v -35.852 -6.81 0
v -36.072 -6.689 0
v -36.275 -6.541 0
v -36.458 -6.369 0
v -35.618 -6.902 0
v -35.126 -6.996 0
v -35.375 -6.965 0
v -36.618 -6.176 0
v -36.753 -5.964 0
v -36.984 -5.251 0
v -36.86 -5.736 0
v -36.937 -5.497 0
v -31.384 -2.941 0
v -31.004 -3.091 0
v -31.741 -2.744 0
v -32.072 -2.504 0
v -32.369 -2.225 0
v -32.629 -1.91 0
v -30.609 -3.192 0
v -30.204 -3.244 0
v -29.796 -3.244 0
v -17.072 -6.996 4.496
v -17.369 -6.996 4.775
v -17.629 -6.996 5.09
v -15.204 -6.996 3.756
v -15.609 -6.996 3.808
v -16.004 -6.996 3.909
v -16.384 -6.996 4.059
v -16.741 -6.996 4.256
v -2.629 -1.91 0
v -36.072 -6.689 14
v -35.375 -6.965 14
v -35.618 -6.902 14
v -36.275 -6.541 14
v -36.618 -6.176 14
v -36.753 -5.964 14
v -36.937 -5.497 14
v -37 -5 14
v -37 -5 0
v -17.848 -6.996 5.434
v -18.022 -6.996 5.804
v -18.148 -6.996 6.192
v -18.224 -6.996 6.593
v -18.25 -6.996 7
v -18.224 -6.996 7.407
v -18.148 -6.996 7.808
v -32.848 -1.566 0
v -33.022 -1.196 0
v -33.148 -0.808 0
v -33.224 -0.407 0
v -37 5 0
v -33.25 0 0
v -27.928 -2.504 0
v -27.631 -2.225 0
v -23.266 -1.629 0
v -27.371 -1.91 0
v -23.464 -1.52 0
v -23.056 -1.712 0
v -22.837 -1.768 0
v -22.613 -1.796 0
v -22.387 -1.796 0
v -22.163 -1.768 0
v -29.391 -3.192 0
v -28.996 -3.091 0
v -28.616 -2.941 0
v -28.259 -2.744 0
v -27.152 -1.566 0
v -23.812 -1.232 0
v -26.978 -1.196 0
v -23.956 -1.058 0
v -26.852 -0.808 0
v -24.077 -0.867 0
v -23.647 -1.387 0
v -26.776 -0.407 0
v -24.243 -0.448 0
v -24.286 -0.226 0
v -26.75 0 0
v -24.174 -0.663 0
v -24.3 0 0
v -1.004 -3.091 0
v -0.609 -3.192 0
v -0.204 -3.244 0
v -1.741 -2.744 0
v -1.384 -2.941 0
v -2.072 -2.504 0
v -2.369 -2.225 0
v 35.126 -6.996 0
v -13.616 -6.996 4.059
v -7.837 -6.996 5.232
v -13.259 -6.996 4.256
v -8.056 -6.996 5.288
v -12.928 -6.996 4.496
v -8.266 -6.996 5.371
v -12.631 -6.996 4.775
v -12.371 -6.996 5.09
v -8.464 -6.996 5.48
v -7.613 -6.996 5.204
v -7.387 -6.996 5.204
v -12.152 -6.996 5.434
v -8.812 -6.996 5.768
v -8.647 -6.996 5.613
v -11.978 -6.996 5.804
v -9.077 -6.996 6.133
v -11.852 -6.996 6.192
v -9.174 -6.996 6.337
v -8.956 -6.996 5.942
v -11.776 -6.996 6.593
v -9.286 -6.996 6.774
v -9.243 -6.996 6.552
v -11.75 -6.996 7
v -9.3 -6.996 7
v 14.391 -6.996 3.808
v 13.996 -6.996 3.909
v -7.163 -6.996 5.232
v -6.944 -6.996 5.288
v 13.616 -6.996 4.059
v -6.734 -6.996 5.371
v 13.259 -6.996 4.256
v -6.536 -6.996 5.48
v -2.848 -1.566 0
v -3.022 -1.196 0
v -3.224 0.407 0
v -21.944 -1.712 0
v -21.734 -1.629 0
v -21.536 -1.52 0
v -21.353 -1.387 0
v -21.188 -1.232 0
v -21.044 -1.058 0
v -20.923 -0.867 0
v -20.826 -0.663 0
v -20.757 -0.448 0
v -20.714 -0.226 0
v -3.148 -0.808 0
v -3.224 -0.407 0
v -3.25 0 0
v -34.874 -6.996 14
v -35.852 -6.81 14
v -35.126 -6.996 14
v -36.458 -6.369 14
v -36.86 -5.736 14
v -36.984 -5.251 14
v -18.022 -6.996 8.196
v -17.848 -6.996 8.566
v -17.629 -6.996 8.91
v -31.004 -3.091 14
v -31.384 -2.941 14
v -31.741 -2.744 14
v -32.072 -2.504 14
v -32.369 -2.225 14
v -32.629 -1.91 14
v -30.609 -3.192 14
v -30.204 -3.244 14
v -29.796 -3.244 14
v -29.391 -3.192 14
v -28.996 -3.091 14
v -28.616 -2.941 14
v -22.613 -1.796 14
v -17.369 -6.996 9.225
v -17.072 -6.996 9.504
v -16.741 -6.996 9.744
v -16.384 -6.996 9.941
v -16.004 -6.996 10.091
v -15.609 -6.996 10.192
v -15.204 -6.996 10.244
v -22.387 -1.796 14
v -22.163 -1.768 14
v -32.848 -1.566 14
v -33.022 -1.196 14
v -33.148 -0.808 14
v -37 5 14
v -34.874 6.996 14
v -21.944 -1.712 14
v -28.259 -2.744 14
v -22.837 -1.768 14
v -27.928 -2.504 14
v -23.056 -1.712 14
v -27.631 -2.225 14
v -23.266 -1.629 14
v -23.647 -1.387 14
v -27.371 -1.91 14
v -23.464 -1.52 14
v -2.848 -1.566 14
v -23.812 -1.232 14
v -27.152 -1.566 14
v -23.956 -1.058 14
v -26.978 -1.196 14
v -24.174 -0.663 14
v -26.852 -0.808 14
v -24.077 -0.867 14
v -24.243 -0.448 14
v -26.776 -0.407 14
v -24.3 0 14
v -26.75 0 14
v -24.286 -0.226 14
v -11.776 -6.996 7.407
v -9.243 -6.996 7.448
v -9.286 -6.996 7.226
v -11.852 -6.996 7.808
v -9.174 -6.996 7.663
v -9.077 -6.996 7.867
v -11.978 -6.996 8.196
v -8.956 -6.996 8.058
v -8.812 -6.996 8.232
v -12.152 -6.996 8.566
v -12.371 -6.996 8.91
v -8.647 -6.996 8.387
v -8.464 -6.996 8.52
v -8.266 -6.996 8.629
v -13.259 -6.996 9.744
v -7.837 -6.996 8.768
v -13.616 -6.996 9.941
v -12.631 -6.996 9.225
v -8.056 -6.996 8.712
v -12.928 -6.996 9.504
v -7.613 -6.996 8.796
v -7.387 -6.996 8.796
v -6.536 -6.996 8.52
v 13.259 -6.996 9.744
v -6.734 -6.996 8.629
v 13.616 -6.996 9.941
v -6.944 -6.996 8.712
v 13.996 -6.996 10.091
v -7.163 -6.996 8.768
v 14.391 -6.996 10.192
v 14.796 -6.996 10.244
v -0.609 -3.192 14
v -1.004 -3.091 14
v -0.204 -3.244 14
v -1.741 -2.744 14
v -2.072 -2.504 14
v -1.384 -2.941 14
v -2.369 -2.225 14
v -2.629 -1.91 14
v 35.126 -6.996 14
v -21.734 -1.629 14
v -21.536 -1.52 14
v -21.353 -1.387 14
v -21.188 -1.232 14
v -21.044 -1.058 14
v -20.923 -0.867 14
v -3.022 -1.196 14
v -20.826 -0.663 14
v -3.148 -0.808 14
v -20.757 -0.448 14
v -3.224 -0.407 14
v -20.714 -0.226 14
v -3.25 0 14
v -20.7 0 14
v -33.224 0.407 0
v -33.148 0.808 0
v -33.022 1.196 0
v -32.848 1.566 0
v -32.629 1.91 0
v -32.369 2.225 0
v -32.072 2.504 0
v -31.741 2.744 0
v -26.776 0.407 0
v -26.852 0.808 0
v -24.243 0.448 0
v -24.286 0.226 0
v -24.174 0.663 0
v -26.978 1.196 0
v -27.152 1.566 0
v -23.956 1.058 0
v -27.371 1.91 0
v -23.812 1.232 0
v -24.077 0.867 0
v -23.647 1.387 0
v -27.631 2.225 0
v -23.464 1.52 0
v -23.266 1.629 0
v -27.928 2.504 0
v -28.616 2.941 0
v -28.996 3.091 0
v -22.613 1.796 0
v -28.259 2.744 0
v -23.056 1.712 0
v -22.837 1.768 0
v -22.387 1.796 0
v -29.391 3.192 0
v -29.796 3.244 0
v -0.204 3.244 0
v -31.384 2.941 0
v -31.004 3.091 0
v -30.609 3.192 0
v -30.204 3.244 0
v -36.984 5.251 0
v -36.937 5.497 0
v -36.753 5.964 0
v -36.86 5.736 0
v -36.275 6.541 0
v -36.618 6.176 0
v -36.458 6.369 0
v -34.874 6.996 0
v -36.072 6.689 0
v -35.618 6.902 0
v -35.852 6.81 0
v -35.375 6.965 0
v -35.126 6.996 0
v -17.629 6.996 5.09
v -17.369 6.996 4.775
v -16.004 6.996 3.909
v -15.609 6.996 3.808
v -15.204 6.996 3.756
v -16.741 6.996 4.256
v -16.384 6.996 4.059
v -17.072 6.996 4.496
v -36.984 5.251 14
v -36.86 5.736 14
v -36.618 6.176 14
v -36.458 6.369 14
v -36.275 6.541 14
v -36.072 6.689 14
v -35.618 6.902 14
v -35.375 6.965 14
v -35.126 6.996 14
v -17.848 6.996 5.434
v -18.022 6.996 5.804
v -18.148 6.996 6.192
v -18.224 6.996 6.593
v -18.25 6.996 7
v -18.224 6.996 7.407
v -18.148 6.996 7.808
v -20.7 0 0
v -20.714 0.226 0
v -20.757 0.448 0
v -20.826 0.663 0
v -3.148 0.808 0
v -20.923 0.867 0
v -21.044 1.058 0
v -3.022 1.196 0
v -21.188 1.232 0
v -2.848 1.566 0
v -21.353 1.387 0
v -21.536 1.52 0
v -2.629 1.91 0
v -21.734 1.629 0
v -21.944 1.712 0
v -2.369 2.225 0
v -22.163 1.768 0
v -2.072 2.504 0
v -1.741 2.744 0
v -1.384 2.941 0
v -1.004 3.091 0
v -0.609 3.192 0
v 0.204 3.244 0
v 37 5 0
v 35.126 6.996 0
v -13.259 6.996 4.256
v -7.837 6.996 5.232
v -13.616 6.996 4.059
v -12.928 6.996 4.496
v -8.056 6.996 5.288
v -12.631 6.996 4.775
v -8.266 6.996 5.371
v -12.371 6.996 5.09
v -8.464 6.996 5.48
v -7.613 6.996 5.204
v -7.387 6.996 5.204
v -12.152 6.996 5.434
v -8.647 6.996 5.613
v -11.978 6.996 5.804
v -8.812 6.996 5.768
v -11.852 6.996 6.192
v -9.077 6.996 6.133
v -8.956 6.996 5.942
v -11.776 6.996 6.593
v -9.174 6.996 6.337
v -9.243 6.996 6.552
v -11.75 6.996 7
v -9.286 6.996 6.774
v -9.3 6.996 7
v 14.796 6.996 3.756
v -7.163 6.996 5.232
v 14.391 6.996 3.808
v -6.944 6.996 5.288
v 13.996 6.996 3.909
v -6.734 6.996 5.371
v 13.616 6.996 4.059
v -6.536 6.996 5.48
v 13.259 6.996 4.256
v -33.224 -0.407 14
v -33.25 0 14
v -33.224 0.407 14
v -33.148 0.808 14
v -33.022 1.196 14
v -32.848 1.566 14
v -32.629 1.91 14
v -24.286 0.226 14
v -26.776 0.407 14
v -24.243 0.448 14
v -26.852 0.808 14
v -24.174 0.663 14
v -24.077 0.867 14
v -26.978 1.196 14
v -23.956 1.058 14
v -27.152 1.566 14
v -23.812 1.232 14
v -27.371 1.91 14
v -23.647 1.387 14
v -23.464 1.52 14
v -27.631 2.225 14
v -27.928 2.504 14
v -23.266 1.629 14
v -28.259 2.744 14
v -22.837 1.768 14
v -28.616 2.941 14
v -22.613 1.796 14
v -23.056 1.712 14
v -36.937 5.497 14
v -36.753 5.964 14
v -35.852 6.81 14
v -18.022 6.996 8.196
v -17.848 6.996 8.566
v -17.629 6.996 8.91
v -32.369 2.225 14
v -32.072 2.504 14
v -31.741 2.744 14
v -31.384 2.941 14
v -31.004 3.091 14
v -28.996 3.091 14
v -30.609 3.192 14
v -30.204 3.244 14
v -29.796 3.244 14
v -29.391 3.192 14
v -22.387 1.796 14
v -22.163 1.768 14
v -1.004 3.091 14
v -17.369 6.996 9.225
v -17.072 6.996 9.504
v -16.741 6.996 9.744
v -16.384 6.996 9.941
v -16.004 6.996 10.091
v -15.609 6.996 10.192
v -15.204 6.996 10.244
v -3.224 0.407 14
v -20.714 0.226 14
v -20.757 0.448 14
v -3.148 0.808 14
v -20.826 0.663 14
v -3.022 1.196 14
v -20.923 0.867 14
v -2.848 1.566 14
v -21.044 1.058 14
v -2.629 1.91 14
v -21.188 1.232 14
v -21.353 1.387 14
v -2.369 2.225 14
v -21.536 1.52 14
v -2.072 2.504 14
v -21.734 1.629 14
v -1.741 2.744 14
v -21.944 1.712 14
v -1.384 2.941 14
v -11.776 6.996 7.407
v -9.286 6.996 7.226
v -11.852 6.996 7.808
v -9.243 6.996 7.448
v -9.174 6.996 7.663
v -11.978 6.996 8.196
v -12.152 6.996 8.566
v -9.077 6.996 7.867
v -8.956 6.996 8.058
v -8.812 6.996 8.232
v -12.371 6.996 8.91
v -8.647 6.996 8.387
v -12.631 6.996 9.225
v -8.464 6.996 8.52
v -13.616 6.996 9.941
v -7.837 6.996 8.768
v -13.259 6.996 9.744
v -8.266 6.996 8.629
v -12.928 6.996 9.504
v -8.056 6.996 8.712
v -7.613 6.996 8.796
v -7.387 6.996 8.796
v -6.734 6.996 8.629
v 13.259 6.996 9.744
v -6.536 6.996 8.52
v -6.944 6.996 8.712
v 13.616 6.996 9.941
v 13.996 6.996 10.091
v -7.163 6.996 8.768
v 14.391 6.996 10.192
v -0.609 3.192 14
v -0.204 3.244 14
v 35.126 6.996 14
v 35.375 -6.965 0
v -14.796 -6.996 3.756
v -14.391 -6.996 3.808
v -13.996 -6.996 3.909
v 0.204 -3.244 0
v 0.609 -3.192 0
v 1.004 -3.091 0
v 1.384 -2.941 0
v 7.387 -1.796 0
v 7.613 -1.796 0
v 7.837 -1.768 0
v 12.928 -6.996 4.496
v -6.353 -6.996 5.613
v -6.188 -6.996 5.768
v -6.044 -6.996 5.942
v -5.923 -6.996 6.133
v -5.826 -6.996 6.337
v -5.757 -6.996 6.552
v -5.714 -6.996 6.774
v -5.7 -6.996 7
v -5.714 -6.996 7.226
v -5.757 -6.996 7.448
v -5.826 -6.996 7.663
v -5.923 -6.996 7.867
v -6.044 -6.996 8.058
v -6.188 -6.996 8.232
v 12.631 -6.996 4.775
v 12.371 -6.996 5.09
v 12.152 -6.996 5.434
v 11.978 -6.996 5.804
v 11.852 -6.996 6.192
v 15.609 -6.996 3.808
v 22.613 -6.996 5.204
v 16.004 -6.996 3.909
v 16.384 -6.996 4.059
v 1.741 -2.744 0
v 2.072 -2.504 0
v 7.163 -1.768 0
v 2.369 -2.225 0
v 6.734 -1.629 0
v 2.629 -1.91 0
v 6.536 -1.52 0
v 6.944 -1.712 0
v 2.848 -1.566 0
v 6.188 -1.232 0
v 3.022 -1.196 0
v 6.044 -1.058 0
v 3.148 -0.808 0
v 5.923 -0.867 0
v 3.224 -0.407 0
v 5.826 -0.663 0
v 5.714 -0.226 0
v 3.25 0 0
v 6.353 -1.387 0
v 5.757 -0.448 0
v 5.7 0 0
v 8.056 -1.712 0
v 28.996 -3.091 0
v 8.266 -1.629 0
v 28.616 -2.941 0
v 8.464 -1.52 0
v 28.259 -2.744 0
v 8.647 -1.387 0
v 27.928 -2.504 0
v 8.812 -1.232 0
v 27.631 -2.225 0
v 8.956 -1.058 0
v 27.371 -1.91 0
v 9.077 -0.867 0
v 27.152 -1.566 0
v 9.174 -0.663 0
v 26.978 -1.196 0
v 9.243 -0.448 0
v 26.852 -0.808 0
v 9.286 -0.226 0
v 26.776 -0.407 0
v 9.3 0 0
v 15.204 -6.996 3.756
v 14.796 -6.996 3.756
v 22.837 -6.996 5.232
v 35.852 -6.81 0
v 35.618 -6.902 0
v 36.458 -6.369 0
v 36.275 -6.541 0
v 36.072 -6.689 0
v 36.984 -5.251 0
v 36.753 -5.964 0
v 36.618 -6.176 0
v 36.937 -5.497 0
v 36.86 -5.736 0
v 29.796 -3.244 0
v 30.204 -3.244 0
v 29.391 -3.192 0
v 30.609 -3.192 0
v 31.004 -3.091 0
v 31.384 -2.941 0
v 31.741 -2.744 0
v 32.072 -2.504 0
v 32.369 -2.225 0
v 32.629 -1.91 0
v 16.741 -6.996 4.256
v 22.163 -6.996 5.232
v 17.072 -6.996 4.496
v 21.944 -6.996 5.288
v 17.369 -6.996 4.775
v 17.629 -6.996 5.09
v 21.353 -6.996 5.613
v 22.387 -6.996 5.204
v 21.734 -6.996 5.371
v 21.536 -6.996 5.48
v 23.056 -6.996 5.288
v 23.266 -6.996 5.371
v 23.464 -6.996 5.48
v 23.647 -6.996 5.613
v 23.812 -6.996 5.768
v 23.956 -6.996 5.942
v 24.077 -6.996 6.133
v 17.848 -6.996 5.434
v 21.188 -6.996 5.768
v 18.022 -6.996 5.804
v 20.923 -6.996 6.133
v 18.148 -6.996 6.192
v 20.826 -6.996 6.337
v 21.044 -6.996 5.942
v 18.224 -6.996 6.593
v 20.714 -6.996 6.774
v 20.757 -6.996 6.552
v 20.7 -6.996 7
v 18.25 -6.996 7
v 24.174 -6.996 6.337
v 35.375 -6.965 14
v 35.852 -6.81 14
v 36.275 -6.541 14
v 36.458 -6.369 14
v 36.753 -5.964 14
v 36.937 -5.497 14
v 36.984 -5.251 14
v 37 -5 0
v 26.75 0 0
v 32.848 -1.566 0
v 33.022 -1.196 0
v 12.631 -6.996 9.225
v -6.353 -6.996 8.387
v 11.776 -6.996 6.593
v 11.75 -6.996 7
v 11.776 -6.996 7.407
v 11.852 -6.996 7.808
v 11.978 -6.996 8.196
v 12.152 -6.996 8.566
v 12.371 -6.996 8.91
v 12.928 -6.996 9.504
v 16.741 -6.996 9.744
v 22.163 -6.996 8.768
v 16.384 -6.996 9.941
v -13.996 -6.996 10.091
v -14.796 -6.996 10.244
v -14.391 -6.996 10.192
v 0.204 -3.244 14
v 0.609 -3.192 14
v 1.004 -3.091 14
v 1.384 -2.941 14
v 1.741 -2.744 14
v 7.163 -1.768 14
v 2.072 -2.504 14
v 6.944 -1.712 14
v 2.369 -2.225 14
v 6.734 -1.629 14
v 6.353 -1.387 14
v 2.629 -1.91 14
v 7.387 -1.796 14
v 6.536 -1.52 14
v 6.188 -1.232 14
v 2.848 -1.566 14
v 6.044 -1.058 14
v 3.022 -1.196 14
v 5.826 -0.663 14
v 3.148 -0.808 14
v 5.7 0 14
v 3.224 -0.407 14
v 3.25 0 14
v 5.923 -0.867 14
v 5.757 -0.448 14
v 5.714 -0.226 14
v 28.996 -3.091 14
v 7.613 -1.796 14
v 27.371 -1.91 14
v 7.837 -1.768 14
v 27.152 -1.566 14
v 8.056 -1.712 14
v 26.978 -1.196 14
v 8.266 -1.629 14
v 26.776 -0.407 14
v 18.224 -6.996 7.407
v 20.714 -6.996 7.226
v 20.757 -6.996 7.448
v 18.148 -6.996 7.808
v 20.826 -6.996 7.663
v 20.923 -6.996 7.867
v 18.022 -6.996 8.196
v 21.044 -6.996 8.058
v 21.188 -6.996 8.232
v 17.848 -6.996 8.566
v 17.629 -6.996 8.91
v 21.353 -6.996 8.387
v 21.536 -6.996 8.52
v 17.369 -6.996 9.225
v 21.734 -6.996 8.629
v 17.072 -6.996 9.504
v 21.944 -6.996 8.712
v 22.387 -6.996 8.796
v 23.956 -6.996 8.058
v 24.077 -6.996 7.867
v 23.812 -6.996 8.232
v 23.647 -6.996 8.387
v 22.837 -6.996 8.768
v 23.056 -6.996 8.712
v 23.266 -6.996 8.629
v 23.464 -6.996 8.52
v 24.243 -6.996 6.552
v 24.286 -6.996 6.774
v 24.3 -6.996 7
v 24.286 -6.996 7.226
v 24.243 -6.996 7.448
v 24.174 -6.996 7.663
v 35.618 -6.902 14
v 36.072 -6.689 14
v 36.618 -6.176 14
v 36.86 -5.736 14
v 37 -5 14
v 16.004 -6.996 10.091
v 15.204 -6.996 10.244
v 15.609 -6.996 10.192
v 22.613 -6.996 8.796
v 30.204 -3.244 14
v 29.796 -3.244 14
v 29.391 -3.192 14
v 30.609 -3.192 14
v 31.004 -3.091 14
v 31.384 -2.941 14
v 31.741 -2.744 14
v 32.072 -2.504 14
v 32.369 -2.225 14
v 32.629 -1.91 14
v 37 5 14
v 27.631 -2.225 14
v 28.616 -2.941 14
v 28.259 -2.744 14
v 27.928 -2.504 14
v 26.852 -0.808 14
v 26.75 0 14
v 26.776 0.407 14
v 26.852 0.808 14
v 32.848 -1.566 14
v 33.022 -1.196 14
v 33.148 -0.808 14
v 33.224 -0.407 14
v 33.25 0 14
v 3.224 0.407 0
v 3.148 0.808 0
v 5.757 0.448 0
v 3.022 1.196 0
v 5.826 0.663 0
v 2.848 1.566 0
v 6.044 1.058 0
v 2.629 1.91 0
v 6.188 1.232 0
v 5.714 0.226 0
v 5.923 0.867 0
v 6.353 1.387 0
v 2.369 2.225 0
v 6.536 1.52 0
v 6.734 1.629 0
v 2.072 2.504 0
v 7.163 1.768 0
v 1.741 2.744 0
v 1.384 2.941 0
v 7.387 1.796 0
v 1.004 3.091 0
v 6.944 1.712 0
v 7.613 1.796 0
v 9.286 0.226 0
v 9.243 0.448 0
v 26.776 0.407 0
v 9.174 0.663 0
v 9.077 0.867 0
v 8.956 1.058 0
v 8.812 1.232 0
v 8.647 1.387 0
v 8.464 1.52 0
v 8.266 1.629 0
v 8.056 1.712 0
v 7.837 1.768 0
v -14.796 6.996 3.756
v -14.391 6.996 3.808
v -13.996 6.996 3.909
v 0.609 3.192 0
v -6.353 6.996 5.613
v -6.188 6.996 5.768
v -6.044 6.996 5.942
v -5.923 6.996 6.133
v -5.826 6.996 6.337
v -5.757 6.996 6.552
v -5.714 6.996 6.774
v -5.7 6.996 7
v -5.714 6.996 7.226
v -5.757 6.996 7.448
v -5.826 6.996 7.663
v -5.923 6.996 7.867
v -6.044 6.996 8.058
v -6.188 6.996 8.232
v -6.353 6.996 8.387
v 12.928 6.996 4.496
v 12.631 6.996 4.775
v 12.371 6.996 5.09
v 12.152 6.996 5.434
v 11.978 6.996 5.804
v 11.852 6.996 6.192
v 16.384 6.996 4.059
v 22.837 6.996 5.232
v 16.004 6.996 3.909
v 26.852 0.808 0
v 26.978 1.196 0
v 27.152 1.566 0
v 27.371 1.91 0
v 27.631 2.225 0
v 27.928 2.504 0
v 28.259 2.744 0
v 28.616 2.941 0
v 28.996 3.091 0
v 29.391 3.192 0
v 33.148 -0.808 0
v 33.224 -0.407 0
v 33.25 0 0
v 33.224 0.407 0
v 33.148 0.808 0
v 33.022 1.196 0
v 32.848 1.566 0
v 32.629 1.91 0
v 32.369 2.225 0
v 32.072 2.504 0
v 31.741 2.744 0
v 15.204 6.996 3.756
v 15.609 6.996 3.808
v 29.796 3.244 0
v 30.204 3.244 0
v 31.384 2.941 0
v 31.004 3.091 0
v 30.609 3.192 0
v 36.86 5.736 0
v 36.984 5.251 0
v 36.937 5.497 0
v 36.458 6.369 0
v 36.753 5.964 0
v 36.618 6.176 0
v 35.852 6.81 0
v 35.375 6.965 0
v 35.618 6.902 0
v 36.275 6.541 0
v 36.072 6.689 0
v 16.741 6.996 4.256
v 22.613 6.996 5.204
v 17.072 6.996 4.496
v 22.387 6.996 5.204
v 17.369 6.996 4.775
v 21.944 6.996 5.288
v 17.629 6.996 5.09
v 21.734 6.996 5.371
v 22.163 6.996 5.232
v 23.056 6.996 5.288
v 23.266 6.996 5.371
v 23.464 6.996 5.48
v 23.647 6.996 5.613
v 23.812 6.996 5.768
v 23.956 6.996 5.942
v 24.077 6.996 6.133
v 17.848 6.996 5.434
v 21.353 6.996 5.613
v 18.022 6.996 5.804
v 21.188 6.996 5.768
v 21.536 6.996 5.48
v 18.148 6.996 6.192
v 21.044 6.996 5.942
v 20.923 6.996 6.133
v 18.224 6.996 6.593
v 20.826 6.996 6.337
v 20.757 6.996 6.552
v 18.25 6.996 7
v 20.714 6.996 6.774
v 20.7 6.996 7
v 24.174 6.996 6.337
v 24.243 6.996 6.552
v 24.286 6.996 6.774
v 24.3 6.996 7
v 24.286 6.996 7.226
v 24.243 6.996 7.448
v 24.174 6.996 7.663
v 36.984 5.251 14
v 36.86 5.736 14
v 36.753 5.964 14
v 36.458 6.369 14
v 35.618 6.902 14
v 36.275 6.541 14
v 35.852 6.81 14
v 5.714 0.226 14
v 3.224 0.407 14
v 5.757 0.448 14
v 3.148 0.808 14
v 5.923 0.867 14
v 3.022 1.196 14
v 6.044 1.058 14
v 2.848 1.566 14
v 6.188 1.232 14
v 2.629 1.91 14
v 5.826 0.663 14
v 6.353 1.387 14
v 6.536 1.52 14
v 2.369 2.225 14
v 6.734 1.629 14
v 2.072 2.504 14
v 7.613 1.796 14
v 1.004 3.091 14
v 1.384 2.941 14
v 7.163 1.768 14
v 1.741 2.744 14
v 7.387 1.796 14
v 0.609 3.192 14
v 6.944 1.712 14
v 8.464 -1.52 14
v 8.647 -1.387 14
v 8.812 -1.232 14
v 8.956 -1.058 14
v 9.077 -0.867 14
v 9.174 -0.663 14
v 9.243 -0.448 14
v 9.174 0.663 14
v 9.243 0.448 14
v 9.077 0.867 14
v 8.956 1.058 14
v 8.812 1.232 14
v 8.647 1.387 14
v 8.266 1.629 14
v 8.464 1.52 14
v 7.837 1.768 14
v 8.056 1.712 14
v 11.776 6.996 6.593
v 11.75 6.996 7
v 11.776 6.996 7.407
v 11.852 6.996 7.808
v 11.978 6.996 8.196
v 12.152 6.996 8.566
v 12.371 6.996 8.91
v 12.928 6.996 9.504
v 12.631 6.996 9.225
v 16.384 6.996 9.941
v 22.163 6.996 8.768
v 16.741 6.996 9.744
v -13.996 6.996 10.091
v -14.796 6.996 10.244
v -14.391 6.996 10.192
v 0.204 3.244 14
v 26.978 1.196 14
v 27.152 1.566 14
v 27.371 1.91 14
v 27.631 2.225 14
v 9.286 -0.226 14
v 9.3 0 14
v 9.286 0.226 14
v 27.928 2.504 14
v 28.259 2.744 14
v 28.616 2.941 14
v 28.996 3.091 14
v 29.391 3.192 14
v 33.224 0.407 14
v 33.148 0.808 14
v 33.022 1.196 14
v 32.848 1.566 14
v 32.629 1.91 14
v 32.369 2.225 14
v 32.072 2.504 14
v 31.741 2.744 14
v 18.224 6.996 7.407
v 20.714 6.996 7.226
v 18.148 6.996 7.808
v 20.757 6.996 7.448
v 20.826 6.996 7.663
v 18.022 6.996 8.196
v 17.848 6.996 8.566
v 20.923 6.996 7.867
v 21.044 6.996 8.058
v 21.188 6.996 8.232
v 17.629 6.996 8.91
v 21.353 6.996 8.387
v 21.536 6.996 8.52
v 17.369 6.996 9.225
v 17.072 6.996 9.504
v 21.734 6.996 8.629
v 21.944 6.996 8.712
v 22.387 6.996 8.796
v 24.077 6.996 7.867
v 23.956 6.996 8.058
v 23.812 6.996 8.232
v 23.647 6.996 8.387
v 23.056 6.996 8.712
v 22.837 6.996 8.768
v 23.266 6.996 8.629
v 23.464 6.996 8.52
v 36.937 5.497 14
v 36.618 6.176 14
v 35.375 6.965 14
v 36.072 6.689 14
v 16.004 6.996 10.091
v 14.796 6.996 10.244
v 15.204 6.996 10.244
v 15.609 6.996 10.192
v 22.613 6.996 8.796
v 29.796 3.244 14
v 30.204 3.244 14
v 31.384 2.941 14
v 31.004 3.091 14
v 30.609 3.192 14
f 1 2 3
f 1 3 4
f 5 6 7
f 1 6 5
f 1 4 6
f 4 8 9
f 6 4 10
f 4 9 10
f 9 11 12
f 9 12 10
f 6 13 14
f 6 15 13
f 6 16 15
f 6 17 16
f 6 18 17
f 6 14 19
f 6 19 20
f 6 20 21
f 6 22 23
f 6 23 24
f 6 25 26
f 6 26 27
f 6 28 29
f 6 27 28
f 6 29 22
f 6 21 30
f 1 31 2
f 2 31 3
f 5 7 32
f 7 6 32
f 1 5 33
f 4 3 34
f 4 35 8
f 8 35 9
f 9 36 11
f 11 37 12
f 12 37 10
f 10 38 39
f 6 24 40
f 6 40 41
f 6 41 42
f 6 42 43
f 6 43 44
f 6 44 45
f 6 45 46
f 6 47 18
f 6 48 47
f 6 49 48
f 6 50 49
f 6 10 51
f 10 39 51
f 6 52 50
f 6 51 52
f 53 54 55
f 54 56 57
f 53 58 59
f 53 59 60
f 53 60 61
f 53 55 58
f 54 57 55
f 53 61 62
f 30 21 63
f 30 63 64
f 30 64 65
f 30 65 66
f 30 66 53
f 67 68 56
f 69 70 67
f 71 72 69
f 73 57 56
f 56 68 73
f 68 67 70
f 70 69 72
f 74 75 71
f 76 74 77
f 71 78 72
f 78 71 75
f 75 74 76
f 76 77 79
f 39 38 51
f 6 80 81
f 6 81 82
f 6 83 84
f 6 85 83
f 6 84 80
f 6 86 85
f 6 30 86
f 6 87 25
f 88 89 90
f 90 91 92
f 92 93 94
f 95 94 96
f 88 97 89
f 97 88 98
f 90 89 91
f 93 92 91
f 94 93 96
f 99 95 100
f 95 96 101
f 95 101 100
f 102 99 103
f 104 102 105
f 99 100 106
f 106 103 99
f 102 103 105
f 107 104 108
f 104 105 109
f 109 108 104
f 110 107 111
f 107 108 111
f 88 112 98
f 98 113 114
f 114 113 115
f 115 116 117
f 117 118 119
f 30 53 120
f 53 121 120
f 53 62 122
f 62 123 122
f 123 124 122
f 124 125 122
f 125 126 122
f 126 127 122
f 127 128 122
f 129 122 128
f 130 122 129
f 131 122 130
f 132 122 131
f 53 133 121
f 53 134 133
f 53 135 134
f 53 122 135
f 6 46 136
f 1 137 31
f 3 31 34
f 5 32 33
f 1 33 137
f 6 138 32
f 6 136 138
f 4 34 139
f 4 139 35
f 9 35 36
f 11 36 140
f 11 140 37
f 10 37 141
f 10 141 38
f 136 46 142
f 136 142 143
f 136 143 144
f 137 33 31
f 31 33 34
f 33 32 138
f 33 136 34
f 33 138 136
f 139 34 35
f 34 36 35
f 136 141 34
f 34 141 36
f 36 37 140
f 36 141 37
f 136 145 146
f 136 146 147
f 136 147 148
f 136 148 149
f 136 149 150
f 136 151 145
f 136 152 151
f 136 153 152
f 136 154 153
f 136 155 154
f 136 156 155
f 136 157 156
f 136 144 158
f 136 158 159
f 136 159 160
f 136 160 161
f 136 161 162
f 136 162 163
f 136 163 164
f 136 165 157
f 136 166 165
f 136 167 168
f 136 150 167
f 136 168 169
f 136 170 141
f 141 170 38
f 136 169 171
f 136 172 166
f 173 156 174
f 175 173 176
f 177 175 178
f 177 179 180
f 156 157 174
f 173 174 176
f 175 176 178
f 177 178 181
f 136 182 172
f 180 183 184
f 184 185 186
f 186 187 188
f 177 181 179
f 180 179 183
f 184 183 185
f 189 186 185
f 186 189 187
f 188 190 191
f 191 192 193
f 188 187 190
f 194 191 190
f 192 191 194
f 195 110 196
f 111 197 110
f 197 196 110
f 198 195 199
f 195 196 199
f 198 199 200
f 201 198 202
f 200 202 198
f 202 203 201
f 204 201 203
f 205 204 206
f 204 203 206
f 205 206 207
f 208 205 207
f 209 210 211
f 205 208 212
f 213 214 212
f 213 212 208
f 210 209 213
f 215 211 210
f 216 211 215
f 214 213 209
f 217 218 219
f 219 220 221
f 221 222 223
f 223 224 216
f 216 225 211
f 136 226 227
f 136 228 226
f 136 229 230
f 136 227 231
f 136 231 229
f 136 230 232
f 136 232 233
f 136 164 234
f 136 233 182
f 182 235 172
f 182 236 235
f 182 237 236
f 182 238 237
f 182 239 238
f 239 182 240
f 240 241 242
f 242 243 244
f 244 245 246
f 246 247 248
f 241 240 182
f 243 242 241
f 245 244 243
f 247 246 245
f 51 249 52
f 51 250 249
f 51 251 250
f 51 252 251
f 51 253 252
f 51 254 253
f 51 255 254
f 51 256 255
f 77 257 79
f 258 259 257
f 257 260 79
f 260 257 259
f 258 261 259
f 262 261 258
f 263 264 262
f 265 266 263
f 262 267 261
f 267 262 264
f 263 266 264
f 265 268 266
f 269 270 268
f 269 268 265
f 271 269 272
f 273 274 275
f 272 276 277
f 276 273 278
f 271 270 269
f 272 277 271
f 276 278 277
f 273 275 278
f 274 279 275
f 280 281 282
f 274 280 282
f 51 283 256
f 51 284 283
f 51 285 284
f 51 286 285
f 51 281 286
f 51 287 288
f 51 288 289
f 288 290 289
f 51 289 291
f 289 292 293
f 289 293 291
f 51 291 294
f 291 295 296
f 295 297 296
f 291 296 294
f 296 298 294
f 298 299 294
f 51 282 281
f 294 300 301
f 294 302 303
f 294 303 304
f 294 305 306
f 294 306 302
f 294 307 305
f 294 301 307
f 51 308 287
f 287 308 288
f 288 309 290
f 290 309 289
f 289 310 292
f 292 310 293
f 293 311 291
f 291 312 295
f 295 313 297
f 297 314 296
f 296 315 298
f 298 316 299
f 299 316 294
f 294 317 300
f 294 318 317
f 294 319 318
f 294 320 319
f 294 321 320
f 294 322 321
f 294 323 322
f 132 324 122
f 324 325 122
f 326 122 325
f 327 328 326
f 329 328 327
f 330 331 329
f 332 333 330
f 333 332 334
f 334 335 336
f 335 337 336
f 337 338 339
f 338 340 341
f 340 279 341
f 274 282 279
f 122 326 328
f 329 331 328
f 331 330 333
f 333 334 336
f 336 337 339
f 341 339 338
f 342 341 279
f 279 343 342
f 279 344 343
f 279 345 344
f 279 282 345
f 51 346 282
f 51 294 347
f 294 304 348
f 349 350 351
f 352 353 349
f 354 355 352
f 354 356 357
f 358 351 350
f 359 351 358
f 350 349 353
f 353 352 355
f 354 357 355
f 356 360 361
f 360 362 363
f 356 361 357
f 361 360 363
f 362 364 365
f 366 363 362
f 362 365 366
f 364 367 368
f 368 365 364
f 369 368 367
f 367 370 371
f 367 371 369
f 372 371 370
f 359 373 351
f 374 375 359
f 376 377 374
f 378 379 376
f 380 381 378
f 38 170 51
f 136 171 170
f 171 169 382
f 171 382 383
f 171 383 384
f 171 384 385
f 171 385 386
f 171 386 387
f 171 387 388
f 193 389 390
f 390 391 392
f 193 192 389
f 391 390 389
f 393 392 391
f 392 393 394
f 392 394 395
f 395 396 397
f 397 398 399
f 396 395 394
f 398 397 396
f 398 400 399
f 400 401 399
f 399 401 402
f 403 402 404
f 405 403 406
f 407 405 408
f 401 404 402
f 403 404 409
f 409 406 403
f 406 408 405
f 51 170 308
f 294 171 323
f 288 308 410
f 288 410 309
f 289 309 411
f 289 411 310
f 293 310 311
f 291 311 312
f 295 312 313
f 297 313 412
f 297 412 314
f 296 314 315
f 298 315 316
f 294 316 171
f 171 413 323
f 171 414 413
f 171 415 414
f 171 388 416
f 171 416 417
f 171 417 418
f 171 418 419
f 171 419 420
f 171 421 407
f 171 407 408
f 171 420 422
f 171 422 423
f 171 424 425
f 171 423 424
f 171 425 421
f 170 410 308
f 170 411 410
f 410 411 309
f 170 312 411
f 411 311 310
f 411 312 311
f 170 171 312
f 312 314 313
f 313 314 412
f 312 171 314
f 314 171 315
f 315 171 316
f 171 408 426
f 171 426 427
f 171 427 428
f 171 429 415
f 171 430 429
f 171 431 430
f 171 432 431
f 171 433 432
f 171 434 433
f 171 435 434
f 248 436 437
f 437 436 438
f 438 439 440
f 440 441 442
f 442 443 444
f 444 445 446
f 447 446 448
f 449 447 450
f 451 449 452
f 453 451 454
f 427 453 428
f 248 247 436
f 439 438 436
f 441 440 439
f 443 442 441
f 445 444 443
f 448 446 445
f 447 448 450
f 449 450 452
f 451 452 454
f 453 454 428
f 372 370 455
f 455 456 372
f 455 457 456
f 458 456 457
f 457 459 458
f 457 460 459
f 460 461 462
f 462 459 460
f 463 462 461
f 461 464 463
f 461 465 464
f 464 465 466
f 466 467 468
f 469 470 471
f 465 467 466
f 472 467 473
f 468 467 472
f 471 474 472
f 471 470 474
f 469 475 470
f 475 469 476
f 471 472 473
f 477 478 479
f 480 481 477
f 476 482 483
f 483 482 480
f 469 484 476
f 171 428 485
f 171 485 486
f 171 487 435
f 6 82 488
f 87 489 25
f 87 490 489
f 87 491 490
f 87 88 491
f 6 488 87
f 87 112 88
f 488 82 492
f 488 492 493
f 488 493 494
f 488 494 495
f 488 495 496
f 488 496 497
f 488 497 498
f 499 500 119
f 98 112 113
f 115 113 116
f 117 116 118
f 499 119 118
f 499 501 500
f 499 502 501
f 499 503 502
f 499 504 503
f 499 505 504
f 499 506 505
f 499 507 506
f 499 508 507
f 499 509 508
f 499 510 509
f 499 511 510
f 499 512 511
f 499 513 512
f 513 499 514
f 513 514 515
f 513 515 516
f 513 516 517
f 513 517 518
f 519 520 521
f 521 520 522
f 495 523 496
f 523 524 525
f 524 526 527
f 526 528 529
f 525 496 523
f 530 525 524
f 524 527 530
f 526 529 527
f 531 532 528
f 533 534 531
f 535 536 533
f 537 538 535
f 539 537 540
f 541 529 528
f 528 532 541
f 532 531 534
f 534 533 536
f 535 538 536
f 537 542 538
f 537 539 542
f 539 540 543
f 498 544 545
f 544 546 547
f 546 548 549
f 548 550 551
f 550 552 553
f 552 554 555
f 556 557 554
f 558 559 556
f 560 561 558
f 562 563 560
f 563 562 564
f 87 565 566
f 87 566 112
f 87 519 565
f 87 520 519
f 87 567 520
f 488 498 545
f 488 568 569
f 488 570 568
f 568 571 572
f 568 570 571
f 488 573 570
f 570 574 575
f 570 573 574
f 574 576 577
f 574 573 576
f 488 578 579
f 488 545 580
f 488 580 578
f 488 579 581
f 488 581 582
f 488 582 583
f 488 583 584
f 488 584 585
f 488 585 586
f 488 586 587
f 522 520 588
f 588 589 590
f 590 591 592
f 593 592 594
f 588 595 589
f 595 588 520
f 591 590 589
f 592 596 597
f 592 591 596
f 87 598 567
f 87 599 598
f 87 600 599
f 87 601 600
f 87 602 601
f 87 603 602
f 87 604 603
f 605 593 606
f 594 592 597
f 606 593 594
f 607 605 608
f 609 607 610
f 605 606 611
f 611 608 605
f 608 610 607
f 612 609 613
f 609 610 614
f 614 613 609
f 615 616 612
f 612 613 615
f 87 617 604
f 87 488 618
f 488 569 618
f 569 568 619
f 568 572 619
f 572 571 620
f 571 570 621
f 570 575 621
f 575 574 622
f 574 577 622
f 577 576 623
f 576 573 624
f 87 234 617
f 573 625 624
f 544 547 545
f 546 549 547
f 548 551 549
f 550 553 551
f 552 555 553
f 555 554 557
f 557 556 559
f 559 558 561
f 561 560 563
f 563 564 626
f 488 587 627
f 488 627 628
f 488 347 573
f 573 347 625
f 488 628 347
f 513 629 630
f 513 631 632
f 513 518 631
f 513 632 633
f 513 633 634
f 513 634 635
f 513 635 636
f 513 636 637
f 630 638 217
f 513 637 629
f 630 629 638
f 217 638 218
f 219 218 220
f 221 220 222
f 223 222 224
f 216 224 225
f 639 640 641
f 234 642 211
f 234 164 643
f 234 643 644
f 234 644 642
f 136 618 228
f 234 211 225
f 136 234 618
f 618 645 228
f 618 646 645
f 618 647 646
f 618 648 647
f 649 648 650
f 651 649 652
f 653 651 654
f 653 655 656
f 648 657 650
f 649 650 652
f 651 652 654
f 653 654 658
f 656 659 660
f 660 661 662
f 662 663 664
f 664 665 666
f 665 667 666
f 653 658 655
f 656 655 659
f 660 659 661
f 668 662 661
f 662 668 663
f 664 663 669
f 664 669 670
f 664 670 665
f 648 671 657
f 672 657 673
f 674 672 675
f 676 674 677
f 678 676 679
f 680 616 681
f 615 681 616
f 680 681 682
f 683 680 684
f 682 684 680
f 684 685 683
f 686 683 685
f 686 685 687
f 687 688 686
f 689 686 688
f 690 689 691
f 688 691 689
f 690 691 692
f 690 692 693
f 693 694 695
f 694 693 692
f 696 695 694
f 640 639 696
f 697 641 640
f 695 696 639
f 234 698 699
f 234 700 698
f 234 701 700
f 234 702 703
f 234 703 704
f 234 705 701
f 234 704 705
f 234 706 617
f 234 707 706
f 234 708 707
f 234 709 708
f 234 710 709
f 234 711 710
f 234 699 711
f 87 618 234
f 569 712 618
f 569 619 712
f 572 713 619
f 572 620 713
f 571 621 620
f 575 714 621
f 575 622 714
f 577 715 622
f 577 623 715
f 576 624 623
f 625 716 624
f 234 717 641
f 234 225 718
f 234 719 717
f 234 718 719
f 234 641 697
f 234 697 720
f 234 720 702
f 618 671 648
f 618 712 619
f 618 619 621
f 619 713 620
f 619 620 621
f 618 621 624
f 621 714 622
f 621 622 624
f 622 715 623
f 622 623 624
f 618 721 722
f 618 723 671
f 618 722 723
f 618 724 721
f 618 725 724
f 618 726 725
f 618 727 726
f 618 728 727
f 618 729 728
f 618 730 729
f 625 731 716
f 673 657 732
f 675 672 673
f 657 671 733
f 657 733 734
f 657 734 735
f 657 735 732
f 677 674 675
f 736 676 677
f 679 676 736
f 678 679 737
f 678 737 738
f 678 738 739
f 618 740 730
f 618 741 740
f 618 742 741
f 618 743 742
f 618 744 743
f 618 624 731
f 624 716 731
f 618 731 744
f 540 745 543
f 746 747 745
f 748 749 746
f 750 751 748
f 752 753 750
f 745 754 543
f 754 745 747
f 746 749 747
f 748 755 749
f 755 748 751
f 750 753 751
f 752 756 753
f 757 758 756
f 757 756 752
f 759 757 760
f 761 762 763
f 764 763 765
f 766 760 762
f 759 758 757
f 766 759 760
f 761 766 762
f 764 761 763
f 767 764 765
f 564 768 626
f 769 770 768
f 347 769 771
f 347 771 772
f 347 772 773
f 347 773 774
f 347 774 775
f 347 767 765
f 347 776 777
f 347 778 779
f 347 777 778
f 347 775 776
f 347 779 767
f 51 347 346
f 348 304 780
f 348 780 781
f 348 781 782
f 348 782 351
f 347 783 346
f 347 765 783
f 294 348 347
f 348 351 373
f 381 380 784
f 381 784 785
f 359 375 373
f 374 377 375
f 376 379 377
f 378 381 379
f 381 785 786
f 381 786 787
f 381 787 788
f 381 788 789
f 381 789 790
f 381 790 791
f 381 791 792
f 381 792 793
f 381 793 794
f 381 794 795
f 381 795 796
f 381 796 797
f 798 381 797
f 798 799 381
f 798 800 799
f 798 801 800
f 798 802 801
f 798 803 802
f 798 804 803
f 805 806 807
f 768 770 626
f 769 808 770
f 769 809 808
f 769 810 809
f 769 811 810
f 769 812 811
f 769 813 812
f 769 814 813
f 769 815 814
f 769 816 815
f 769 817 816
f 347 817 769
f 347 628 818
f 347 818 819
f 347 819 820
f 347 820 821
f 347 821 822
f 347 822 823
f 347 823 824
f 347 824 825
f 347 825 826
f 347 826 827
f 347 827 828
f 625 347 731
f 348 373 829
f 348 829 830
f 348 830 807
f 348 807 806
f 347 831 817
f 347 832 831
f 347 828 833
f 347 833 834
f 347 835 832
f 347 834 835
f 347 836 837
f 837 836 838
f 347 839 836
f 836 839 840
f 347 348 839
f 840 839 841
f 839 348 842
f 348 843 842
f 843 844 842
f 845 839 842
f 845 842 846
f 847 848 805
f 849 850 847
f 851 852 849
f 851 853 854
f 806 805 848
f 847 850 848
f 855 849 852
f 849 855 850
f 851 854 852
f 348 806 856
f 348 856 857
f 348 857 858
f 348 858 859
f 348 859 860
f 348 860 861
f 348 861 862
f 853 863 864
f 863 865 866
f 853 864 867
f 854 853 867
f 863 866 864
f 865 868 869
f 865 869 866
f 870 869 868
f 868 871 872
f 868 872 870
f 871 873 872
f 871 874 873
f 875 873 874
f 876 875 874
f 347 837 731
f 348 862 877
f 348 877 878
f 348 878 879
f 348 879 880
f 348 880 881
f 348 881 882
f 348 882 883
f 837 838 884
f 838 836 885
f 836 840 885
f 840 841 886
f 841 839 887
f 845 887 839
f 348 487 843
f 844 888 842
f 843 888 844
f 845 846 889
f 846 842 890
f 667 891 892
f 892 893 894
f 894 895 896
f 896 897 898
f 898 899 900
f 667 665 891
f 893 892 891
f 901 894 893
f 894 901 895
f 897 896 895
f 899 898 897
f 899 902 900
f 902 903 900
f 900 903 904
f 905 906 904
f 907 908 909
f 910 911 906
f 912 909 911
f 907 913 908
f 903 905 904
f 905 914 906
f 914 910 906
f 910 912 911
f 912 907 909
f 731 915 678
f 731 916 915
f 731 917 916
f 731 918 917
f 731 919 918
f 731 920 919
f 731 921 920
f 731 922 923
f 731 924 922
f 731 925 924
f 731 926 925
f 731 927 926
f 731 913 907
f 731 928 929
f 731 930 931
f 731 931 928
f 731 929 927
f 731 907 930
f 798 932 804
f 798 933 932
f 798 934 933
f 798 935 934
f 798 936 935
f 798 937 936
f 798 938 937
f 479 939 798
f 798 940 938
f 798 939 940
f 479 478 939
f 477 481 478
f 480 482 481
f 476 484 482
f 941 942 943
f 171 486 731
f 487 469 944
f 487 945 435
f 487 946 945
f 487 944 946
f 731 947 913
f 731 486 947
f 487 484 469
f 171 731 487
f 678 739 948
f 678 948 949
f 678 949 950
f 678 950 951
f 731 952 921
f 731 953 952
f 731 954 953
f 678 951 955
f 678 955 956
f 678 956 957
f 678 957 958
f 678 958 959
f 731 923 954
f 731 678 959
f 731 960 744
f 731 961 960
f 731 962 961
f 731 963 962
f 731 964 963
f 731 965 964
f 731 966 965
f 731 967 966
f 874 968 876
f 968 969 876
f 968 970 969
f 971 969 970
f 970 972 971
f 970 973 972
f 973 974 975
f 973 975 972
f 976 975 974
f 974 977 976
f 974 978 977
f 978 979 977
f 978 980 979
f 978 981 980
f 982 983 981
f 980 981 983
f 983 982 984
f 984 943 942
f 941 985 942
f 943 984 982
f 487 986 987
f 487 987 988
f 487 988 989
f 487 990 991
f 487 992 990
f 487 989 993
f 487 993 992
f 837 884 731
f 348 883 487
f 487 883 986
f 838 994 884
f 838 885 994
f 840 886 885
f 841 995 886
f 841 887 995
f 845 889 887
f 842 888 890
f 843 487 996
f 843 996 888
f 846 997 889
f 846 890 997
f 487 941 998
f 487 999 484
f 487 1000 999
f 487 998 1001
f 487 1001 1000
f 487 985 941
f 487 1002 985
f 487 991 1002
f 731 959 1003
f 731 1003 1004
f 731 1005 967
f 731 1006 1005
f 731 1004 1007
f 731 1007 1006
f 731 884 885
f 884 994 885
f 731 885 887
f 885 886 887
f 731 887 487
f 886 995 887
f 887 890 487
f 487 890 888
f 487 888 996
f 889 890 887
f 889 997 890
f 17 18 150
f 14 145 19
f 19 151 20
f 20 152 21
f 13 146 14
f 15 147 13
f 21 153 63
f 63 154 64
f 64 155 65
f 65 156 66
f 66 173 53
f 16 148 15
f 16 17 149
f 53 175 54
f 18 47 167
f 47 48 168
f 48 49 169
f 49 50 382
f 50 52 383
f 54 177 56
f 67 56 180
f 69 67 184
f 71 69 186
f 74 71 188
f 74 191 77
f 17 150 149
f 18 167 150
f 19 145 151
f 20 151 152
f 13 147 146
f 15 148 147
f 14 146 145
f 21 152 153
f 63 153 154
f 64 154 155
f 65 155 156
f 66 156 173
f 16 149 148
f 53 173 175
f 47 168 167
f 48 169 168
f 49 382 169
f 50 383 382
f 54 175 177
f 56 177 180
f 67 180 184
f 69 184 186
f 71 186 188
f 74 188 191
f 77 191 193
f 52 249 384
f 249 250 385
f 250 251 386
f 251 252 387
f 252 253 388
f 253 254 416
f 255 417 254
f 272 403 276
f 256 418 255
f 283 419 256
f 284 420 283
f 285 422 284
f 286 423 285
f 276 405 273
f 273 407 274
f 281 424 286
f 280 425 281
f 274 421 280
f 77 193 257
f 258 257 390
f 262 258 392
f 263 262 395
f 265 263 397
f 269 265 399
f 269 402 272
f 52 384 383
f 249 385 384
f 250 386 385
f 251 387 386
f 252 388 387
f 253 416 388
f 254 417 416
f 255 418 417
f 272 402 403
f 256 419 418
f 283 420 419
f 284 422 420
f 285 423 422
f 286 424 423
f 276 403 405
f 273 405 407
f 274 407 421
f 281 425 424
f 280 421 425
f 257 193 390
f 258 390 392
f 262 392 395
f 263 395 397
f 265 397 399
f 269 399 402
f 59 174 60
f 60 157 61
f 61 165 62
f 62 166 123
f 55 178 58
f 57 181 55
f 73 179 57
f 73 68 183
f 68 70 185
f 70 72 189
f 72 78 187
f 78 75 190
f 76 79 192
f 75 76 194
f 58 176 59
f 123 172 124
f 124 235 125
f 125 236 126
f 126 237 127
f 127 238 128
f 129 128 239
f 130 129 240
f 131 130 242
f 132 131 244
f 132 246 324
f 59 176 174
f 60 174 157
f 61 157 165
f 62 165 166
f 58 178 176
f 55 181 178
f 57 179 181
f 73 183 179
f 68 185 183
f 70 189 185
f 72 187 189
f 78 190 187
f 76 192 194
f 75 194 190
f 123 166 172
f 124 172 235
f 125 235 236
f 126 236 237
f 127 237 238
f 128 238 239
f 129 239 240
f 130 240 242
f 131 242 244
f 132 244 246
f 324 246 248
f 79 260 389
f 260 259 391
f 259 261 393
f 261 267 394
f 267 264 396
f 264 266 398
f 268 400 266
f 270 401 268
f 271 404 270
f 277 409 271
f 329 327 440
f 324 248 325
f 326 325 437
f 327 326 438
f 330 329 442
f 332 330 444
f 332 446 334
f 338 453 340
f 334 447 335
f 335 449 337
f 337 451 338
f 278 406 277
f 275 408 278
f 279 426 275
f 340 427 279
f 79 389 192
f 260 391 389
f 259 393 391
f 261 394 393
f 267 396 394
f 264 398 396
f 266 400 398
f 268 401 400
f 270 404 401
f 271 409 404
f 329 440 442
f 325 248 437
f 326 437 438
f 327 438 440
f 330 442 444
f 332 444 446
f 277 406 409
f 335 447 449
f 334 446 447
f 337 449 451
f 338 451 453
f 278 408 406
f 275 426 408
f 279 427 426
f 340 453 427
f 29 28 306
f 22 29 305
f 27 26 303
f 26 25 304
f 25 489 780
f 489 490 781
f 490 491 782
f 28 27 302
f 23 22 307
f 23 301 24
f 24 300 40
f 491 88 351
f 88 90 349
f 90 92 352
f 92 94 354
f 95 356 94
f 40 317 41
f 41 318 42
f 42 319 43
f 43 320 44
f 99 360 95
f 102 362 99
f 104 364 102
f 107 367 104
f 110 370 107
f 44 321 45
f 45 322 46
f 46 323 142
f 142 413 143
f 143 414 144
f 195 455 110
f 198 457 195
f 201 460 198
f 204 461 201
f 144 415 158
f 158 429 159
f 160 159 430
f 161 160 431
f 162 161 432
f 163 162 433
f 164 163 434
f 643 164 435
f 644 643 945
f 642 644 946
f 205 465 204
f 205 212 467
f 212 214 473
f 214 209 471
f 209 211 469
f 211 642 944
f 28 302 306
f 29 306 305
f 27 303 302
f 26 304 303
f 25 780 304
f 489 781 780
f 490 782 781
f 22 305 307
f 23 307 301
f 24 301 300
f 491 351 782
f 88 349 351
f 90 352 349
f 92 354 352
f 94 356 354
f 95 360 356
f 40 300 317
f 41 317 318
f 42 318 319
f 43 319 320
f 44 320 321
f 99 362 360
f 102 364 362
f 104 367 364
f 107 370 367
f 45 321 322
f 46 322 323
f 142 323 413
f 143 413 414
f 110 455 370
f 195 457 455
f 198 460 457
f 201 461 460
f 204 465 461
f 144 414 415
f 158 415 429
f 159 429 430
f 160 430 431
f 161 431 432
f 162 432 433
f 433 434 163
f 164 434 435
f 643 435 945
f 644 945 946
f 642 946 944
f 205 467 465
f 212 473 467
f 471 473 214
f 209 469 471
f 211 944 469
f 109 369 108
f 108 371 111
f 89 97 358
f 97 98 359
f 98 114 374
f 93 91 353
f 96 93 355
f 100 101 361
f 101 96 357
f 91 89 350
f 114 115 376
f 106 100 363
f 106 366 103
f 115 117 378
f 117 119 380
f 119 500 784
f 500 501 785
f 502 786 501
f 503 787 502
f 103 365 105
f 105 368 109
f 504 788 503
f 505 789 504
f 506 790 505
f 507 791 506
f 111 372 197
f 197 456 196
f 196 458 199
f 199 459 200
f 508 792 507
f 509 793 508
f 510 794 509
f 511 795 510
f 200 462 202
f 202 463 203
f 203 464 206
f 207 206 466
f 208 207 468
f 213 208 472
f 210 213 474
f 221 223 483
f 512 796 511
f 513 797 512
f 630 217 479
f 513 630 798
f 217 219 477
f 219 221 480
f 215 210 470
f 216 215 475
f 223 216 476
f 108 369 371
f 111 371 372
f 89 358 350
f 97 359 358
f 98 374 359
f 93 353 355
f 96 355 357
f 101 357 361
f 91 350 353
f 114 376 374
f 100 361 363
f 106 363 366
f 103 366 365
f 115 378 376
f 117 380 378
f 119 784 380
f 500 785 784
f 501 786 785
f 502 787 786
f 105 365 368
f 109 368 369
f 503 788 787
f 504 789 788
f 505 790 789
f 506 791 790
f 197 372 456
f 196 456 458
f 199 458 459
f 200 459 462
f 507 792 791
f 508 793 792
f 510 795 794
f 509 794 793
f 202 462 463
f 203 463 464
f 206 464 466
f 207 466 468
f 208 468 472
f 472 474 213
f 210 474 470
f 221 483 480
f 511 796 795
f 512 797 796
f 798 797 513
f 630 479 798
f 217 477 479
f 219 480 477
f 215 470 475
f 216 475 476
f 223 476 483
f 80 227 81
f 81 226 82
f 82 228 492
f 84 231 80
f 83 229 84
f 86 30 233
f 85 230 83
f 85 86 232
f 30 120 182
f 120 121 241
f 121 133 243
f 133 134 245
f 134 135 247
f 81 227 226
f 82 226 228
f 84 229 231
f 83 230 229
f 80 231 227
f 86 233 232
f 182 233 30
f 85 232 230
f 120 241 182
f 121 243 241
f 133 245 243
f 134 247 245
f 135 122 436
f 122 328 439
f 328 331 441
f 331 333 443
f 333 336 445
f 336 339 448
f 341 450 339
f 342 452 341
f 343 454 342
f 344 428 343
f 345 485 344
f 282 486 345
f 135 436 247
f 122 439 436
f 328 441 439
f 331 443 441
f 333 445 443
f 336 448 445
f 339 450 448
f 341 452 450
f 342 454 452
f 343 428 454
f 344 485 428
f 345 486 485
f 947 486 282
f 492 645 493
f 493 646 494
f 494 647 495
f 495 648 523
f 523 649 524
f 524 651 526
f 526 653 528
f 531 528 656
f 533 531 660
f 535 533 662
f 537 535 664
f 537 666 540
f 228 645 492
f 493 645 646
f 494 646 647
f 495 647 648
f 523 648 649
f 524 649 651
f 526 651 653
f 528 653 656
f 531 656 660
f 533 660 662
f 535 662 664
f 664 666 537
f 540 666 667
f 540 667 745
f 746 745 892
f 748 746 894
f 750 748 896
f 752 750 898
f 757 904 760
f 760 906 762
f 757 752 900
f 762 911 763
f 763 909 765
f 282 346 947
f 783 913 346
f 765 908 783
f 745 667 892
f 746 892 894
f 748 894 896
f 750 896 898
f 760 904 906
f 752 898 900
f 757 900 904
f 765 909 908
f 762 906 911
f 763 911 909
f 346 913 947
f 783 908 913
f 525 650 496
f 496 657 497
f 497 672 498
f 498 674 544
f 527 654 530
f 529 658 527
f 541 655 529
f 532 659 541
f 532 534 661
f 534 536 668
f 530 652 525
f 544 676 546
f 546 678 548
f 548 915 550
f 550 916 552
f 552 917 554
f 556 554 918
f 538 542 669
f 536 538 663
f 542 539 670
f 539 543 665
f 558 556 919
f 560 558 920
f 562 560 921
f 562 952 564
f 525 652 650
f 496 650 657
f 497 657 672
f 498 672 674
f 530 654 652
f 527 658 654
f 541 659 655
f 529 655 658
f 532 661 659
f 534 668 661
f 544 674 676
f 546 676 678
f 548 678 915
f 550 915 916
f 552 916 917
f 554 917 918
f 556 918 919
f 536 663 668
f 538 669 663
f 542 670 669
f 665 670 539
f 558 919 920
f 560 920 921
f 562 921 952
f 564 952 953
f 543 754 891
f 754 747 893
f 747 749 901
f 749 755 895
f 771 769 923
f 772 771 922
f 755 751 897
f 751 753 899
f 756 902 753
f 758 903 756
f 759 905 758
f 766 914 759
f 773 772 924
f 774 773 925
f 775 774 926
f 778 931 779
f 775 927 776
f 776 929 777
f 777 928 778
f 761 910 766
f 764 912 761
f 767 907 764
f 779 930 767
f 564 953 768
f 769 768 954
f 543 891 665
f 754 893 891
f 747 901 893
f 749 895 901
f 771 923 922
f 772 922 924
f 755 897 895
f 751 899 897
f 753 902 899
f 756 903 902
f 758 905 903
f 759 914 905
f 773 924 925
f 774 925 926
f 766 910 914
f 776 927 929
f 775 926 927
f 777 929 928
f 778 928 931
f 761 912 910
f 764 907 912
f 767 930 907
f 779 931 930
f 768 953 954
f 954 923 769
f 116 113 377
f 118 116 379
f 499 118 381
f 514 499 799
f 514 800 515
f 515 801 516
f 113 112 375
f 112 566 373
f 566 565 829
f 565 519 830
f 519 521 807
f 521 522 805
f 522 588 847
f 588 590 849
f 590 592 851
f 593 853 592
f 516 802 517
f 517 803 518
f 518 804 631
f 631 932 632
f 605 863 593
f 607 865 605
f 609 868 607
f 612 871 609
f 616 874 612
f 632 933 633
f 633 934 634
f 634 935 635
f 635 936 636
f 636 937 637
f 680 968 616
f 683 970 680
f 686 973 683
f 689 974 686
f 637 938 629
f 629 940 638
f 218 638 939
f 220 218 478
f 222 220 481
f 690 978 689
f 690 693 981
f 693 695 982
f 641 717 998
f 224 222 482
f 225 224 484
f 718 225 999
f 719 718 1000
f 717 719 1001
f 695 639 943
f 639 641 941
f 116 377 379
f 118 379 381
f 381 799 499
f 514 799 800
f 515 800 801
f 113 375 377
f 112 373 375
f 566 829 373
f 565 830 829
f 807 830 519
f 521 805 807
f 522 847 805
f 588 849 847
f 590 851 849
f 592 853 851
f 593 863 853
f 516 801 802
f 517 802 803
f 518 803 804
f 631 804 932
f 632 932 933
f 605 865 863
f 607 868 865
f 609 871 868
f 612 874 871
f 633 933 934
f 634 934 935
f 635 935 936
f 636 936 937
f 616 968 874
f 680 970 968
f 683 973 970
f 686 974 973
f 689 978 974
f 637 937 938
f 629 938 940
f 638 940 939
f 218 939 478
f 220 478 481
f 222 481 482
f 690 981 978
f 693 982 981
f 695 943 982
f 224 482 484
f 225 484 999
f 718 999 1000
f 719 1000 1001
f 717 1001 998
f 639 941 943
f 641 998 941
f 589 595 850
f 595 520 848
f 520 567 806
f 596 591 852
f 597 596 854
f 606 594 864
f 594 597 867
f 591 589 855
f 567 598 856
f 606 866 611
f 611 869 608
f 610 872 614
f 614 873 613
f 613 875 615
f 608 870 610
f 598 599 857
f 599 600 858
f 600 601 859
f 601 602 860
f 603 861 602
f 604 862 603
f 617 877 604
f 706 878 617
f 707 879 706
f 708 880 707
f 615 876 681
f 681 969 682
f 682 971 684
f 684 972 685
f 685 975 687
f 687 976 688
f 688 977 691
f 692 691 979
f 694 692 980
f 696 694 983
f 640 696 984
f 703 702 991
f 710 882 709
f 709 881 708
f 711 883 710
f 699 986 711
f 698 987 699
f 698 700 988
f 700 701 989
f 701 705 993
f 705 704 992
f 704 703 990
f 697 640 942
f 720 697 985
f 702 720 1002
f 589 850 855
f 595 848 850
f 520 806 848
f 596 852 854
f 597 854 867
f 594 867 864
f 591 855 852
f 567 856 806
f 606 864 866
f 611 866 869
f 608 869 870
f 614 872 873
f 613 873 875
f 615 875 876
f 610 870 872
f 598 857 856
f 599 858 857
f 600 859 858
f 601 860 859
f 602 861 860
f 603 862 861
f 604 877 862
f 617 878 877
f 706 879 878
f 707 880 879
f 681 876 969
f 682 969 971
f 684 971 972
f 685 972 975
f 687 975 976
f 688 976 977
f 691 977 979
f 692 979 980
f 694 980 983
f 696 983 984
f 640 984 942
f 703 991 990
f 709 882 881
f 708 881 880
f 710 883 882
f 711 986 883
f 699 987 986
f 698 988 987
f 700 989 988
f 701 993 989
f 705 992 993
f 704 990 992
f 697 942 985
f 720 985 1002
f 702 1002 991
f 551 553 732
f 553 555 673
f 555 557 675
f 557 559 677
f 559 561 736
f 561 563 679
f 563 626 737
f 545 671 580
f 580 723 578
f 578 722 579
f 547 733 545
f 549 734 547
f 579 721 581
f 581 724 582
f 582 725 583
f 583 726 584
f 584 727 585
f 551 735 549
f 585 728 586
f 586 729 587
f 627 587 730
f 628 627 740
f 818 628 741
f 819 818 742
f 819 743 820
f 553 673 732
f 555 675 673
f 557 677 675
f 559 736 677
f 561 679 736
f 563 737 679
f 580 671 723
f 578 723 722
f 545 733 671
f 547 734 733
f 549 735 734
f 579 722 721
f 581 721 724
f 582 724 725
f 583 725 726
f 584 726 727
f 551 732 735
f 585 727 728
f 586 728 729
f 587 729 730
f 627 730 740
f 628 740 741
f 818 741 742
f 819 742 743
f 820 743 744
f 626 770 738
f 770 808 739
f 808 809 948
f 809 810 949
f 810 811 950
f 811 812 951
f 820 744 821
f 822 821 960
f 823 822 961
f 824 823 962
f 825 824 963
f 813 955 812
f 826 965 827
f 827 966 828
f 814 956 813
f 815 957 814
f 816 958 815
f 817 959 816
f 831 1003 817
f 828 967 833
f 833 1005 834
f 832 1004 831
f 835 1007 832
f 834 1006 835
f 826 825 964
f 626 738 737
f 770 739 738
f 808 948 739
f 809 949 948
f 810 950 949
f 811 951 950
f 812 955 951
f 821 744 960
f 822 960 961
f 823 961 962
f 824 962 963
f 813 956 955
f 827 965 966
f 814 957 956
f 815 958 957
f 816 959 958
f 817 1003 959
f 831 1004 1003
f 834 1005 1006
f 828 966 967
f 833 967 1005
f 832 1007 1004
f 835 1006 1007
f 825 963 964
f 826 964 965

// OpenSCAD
$fn = 50;

difference() {
	union() {
		hull() {
			translate(v = [-35.0, 5.0, 0]) {
				cylinder(h = 14, r = 2.0);
			}
			translate(v = [35.0, 5.0, 0]) {
				cylinder(h = 14, r = 2.0);
			}
			translate(v = [-35.0, -5.0, 0]) {
				cylinder(h = 14, r = 2.0);
			}
			translate(v = [35.0, -5.0, 0]) {
				cylinder(h = 14, r = 2.0);
			}
		}
	}
	union() {
		translate(v = [-30.0, 0, -2.0]) {
			cylinder(h = 18.0, r = 3.25);
		}
		translate(v = [-22.5, 0, -2.0]) {
			cylinder(h = 18.0, r = 1.8);
		}
		translate(v = [-15.0, 9.0, 7.0]) {
			rotate(a = [90, 0, 0]) {
				cylinder(h = 18.0, r = 3.25);
			}
		}
		translate(v = [-7.5, 9.0, 7.0]) {
			rotate(a = [90, 0, 0]) {
				cylinder(h = 18.0, r = 1.8);
			}
		}
		translate(v = [0.0, 0, -2.0]) {
			cylinder(h = 18.0, r = 3.25);
		}
		translate(v = [7.5, 0, -2.0]) {
			cylinder(h = 18.0, r = 1.8);
		}
		translate(v = [15.0, 9.0, 7.0]) {
			rotate(a = [90, 0, 0]) {
				cylinder(h = 18.0, r = 3.25);
			}
		}
		translate(v = [22.5, 9.0, 7.0]) {
			rotate(a = [90, 0, 0]) {
				cylinder(h = 18.0, r = 1.8);
			}
		}
		translate(v = [30.0, 0, -2.0]) {
			cylinder(h = 18.0, r = 3.25);
		}
	}
}
